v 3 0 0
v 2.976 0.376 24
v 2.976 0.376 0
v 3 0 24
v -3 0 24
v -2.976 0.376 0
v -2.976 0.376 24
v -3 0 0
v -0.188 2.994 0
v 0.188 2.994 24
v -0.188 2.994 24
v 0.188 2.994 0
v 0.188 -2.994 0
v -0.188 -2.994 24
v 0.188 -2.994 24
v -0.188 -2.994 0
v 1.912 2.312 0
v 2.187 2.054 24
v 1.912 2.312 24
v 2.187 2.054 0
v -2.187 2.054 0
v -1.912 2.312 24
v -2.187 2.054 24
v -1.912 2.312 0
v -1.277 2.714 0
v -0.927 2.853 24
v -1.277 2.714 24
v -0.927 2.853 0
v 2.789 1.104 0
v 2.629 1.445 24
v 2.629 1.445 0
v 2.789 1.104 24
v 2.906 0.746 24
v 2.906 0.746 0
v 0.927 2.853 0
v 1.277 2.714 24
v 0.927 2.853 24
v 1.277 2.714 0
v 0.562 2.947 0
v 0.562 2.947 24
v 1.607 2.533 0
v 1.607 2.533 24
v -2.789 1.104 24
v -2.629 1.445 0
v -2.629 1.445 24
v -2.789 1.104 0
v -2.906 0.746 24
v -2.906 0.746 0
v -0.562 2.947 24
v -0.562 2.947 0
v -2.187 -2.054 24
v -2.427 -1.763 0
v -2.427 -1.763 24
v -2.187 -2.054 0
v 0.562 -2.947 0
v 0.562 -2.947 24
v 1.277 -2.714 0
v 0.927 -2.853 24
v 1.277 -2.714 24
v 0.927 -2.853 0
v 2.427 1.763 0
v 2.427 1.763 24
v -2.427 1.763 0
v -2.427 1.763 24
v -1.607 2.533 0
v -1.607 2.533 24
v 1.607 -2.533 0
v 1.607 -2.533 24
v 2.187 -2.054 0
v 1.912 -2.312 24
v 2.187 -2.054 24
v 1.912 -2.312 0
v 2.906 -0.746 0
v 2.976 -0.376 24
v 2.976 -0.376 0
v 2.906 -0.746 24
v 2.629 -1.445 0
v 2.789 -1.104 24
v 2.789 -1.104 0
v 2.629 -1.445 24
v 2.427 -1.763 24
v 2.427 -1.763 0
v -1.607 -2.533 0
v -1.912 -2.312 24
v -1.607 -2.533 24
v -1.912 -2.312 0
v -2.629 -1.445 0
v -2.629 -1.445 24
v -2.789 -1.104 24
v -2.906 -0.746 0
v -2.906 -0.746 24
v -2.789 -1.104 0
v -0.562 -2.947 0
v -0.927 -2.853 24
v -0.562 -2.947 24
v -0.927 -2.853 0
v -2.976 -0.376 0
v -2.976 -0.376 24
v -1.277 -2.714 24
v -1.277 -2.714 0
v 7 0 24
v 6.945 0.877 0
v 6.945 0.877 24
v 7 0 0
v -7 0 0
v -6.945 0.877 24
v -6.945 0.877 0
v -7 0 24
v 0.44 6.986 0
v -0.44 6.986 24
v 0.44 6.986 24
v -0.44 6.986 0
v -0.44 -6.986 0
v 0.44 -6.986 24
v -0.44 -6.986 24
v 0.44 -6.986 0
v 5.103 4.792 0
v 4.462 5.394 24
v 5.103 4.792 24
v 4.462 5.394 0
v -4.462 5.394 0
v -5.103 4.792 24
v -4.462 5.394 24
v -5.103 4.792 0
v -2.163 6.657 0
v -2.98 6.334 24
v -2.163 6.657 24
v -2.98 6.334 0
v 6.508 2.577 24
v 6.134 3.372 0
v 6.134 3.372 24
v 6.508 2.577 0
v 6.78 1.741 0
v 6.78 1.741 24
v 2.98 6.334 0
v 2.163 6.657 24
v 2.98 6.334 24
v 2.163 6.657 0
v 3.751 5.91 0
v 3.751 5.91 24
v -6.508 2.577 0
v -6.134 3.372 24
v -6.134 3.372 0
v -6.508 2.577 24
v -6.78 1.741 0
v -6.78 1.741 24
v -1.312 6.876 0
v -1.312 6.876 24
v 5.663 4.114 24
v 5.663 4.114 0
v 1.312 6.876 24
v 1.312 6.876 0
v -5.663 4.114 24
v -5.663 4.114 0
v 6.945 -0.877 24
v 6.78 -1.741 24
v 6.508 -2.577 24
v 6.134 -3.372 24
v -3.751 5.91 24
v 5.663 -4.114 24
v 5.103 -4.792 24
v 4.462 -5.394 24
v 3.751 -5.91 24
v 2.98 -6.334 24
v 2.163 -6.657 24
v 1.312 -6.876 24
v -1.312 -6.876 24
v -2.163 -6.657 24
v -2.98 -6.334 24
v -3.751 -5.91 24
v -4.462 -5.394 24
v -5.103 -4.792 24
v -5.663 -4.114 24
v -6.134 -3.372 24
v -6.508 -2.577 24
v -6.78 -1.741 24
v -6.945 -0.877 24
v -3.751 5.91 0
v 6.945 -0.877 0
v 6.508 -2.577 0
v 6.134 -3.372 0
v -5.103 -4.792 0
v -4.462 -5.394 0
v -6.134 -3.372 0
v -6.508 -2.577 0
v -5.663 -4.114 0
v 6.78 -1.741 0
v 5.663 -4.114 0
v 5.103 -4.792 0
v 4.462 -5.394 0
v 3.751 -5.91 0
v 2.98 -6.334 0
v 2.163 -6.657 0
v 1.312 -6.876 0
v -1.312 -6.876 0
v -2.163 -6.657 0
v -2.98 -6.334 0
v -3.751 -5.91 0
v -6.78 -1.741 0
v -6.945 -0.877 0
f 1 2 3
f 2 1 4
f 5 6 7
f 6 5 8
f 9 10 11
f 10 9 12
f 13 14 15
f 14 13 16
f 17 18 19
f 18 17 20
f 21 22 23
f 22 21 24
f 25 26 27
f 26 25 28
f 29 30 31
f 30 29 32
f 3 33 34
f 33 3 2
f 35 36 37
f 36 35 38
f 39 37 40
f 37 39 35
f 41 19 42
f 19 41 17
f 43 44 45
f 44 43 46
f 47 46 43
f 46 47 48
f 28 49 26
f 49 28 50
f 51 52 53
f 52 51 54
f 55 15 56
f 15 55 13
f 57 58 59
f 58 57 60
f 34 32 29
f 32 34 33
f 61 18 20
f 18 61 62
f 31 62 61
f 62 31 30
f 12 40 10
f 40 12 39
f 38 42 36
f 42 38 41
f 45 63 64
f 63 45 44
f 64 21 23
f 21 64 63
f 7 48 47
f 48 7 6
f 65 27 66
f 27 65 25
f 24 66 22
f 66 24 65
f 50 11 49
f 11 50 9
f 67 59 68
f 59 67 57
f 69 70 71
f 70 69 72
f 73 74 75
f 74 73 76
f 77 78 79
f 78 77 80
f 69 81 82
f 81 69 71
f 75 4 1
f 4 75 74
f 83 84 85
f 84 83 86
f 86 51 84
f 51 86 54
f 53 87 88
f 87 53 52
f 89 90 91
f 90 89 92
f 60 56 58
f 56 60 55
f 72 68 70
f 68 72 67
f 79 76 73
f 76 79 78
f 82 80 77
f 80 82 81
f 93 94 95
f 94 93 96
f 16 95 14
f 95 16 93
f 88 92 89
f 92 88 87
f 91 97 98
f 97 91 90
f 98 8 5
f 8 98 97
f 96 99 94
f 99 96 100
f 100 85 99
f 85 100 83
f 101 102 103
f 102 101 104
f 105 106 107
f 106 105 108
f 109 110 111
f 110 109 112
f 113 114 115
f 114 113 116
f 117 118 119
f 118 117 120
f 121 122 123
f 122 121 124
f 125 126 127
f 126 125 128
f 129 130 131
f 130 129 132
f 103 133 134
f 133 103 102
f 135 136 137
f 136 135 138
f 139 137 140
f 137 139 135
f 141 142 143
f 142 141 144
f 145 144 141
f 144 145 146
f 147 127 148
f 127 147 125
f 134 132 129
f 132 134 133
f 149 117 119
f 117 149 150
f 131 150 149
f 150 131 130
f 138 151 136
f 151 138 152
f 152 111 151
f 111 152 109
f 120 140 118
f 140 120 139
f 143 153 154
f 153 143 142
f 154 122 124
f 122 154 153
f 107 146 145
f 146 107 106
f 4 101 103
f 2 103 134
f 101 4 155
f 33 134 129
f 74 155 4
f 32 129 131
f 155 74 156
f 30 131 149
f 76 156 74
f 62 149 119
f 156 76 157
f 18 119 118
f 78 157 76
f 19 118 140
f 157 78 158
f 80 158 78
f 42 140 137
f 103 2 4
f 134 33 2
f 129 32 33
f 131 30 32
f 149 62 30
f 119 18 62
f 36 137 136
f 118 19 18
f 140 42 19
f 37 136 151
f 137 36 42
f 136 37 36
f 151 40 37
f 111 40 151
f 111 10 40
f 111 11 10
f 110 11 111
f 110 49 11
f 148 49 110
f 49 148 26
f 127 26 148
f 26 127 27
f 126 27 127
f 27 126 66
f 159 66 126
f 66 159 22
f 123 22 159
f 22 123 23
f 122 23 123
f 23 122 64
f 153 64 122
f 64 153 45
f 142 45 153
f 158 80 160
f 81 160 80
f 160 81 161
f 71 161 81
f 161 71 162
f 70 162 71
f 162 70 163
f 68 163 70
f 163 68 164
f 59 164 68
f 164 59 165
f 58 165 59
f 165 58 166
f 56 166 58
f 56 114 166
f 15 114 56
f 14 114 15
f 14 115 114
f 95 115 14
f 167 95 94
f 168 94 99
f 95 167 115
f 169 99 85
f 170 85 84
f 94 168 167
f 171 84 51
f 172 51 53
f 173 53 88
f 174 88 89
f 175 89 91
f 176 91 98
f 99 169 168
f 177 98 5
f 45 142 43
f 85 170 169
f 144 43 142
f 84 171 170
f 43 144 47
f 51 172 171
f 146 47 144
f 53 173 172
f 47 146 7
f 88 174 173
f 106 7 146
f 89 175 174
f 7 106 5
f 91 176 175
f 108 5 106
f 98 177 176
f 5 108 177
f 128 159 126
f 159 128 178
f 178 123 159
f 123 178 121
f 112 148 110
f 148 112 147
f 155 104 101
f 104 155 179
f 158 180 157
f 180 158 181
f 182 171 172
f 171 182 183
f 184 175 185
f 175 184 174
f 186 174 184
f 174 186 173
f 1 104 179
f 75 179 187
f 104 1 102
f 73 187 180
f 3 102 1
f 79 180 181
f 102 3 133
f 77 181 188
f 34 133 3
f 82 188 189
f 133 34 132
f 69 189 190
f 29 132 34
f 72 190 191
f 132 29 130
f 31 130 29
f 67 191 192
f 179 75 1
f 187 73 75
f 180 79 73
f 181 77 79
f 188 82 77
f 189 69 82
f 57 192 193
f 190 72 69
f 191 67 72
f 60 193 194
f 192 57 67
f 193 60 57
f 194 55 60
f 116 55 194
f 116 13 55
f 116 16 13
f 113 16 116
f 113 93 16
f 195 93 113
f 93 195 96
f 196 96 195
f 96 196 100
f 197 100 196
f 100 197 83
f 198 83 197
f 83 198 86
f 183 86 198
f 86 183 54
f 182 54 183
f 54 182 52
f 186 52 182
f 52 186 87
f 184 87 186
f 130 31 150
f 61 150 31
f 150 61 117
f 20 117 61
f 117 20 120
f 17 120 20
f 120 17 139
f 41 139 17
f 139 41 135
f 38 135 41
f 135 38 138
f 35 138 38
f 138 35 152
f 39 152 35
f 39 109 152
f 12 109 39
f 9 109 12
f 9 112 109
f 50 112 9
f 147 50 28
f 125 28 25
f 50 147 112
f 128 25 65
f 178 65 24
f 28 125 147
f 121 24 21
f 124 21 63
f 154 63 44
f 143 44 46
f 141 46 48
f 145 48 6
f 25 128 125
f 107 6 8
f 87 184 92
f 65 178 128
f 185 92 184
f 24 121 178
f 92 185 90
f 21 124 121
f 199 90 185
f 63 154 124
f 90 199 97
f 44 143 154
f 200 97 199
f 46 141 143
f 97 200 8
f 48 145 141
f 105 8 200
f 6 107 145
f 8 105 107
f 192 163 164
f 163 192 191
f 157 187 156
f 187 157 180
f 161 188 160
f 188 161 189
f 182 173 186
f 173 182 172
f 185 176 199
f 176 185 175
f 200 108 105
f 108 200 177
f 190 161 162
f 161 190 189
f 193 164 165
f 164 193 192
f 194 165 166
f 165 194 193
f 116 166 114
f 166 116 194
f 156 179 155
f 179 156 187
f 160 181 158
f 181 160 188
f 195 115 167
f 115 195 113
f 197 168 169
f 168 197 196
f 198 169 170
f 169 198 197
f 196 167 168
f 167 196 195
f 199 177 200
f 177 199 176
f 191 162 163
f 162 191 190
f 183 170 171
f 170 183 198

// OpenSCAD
$fn = 50;


difference() {
	union() {
		cylinder(h = 24, r = 7.0000000000);
	}
	union() {
		translate(v = [0.0000000000, 0.0000000000, -100.0000000000]) {
			cylinder(h = 200, r = 3.0000000000);
		}
		cylinder(h = 24, r = 1.5000000000);
		cylinder(h = 24, r = 1.5000000000);
		cylinder(h = 24, r = 1.5000000000);
	}
}
